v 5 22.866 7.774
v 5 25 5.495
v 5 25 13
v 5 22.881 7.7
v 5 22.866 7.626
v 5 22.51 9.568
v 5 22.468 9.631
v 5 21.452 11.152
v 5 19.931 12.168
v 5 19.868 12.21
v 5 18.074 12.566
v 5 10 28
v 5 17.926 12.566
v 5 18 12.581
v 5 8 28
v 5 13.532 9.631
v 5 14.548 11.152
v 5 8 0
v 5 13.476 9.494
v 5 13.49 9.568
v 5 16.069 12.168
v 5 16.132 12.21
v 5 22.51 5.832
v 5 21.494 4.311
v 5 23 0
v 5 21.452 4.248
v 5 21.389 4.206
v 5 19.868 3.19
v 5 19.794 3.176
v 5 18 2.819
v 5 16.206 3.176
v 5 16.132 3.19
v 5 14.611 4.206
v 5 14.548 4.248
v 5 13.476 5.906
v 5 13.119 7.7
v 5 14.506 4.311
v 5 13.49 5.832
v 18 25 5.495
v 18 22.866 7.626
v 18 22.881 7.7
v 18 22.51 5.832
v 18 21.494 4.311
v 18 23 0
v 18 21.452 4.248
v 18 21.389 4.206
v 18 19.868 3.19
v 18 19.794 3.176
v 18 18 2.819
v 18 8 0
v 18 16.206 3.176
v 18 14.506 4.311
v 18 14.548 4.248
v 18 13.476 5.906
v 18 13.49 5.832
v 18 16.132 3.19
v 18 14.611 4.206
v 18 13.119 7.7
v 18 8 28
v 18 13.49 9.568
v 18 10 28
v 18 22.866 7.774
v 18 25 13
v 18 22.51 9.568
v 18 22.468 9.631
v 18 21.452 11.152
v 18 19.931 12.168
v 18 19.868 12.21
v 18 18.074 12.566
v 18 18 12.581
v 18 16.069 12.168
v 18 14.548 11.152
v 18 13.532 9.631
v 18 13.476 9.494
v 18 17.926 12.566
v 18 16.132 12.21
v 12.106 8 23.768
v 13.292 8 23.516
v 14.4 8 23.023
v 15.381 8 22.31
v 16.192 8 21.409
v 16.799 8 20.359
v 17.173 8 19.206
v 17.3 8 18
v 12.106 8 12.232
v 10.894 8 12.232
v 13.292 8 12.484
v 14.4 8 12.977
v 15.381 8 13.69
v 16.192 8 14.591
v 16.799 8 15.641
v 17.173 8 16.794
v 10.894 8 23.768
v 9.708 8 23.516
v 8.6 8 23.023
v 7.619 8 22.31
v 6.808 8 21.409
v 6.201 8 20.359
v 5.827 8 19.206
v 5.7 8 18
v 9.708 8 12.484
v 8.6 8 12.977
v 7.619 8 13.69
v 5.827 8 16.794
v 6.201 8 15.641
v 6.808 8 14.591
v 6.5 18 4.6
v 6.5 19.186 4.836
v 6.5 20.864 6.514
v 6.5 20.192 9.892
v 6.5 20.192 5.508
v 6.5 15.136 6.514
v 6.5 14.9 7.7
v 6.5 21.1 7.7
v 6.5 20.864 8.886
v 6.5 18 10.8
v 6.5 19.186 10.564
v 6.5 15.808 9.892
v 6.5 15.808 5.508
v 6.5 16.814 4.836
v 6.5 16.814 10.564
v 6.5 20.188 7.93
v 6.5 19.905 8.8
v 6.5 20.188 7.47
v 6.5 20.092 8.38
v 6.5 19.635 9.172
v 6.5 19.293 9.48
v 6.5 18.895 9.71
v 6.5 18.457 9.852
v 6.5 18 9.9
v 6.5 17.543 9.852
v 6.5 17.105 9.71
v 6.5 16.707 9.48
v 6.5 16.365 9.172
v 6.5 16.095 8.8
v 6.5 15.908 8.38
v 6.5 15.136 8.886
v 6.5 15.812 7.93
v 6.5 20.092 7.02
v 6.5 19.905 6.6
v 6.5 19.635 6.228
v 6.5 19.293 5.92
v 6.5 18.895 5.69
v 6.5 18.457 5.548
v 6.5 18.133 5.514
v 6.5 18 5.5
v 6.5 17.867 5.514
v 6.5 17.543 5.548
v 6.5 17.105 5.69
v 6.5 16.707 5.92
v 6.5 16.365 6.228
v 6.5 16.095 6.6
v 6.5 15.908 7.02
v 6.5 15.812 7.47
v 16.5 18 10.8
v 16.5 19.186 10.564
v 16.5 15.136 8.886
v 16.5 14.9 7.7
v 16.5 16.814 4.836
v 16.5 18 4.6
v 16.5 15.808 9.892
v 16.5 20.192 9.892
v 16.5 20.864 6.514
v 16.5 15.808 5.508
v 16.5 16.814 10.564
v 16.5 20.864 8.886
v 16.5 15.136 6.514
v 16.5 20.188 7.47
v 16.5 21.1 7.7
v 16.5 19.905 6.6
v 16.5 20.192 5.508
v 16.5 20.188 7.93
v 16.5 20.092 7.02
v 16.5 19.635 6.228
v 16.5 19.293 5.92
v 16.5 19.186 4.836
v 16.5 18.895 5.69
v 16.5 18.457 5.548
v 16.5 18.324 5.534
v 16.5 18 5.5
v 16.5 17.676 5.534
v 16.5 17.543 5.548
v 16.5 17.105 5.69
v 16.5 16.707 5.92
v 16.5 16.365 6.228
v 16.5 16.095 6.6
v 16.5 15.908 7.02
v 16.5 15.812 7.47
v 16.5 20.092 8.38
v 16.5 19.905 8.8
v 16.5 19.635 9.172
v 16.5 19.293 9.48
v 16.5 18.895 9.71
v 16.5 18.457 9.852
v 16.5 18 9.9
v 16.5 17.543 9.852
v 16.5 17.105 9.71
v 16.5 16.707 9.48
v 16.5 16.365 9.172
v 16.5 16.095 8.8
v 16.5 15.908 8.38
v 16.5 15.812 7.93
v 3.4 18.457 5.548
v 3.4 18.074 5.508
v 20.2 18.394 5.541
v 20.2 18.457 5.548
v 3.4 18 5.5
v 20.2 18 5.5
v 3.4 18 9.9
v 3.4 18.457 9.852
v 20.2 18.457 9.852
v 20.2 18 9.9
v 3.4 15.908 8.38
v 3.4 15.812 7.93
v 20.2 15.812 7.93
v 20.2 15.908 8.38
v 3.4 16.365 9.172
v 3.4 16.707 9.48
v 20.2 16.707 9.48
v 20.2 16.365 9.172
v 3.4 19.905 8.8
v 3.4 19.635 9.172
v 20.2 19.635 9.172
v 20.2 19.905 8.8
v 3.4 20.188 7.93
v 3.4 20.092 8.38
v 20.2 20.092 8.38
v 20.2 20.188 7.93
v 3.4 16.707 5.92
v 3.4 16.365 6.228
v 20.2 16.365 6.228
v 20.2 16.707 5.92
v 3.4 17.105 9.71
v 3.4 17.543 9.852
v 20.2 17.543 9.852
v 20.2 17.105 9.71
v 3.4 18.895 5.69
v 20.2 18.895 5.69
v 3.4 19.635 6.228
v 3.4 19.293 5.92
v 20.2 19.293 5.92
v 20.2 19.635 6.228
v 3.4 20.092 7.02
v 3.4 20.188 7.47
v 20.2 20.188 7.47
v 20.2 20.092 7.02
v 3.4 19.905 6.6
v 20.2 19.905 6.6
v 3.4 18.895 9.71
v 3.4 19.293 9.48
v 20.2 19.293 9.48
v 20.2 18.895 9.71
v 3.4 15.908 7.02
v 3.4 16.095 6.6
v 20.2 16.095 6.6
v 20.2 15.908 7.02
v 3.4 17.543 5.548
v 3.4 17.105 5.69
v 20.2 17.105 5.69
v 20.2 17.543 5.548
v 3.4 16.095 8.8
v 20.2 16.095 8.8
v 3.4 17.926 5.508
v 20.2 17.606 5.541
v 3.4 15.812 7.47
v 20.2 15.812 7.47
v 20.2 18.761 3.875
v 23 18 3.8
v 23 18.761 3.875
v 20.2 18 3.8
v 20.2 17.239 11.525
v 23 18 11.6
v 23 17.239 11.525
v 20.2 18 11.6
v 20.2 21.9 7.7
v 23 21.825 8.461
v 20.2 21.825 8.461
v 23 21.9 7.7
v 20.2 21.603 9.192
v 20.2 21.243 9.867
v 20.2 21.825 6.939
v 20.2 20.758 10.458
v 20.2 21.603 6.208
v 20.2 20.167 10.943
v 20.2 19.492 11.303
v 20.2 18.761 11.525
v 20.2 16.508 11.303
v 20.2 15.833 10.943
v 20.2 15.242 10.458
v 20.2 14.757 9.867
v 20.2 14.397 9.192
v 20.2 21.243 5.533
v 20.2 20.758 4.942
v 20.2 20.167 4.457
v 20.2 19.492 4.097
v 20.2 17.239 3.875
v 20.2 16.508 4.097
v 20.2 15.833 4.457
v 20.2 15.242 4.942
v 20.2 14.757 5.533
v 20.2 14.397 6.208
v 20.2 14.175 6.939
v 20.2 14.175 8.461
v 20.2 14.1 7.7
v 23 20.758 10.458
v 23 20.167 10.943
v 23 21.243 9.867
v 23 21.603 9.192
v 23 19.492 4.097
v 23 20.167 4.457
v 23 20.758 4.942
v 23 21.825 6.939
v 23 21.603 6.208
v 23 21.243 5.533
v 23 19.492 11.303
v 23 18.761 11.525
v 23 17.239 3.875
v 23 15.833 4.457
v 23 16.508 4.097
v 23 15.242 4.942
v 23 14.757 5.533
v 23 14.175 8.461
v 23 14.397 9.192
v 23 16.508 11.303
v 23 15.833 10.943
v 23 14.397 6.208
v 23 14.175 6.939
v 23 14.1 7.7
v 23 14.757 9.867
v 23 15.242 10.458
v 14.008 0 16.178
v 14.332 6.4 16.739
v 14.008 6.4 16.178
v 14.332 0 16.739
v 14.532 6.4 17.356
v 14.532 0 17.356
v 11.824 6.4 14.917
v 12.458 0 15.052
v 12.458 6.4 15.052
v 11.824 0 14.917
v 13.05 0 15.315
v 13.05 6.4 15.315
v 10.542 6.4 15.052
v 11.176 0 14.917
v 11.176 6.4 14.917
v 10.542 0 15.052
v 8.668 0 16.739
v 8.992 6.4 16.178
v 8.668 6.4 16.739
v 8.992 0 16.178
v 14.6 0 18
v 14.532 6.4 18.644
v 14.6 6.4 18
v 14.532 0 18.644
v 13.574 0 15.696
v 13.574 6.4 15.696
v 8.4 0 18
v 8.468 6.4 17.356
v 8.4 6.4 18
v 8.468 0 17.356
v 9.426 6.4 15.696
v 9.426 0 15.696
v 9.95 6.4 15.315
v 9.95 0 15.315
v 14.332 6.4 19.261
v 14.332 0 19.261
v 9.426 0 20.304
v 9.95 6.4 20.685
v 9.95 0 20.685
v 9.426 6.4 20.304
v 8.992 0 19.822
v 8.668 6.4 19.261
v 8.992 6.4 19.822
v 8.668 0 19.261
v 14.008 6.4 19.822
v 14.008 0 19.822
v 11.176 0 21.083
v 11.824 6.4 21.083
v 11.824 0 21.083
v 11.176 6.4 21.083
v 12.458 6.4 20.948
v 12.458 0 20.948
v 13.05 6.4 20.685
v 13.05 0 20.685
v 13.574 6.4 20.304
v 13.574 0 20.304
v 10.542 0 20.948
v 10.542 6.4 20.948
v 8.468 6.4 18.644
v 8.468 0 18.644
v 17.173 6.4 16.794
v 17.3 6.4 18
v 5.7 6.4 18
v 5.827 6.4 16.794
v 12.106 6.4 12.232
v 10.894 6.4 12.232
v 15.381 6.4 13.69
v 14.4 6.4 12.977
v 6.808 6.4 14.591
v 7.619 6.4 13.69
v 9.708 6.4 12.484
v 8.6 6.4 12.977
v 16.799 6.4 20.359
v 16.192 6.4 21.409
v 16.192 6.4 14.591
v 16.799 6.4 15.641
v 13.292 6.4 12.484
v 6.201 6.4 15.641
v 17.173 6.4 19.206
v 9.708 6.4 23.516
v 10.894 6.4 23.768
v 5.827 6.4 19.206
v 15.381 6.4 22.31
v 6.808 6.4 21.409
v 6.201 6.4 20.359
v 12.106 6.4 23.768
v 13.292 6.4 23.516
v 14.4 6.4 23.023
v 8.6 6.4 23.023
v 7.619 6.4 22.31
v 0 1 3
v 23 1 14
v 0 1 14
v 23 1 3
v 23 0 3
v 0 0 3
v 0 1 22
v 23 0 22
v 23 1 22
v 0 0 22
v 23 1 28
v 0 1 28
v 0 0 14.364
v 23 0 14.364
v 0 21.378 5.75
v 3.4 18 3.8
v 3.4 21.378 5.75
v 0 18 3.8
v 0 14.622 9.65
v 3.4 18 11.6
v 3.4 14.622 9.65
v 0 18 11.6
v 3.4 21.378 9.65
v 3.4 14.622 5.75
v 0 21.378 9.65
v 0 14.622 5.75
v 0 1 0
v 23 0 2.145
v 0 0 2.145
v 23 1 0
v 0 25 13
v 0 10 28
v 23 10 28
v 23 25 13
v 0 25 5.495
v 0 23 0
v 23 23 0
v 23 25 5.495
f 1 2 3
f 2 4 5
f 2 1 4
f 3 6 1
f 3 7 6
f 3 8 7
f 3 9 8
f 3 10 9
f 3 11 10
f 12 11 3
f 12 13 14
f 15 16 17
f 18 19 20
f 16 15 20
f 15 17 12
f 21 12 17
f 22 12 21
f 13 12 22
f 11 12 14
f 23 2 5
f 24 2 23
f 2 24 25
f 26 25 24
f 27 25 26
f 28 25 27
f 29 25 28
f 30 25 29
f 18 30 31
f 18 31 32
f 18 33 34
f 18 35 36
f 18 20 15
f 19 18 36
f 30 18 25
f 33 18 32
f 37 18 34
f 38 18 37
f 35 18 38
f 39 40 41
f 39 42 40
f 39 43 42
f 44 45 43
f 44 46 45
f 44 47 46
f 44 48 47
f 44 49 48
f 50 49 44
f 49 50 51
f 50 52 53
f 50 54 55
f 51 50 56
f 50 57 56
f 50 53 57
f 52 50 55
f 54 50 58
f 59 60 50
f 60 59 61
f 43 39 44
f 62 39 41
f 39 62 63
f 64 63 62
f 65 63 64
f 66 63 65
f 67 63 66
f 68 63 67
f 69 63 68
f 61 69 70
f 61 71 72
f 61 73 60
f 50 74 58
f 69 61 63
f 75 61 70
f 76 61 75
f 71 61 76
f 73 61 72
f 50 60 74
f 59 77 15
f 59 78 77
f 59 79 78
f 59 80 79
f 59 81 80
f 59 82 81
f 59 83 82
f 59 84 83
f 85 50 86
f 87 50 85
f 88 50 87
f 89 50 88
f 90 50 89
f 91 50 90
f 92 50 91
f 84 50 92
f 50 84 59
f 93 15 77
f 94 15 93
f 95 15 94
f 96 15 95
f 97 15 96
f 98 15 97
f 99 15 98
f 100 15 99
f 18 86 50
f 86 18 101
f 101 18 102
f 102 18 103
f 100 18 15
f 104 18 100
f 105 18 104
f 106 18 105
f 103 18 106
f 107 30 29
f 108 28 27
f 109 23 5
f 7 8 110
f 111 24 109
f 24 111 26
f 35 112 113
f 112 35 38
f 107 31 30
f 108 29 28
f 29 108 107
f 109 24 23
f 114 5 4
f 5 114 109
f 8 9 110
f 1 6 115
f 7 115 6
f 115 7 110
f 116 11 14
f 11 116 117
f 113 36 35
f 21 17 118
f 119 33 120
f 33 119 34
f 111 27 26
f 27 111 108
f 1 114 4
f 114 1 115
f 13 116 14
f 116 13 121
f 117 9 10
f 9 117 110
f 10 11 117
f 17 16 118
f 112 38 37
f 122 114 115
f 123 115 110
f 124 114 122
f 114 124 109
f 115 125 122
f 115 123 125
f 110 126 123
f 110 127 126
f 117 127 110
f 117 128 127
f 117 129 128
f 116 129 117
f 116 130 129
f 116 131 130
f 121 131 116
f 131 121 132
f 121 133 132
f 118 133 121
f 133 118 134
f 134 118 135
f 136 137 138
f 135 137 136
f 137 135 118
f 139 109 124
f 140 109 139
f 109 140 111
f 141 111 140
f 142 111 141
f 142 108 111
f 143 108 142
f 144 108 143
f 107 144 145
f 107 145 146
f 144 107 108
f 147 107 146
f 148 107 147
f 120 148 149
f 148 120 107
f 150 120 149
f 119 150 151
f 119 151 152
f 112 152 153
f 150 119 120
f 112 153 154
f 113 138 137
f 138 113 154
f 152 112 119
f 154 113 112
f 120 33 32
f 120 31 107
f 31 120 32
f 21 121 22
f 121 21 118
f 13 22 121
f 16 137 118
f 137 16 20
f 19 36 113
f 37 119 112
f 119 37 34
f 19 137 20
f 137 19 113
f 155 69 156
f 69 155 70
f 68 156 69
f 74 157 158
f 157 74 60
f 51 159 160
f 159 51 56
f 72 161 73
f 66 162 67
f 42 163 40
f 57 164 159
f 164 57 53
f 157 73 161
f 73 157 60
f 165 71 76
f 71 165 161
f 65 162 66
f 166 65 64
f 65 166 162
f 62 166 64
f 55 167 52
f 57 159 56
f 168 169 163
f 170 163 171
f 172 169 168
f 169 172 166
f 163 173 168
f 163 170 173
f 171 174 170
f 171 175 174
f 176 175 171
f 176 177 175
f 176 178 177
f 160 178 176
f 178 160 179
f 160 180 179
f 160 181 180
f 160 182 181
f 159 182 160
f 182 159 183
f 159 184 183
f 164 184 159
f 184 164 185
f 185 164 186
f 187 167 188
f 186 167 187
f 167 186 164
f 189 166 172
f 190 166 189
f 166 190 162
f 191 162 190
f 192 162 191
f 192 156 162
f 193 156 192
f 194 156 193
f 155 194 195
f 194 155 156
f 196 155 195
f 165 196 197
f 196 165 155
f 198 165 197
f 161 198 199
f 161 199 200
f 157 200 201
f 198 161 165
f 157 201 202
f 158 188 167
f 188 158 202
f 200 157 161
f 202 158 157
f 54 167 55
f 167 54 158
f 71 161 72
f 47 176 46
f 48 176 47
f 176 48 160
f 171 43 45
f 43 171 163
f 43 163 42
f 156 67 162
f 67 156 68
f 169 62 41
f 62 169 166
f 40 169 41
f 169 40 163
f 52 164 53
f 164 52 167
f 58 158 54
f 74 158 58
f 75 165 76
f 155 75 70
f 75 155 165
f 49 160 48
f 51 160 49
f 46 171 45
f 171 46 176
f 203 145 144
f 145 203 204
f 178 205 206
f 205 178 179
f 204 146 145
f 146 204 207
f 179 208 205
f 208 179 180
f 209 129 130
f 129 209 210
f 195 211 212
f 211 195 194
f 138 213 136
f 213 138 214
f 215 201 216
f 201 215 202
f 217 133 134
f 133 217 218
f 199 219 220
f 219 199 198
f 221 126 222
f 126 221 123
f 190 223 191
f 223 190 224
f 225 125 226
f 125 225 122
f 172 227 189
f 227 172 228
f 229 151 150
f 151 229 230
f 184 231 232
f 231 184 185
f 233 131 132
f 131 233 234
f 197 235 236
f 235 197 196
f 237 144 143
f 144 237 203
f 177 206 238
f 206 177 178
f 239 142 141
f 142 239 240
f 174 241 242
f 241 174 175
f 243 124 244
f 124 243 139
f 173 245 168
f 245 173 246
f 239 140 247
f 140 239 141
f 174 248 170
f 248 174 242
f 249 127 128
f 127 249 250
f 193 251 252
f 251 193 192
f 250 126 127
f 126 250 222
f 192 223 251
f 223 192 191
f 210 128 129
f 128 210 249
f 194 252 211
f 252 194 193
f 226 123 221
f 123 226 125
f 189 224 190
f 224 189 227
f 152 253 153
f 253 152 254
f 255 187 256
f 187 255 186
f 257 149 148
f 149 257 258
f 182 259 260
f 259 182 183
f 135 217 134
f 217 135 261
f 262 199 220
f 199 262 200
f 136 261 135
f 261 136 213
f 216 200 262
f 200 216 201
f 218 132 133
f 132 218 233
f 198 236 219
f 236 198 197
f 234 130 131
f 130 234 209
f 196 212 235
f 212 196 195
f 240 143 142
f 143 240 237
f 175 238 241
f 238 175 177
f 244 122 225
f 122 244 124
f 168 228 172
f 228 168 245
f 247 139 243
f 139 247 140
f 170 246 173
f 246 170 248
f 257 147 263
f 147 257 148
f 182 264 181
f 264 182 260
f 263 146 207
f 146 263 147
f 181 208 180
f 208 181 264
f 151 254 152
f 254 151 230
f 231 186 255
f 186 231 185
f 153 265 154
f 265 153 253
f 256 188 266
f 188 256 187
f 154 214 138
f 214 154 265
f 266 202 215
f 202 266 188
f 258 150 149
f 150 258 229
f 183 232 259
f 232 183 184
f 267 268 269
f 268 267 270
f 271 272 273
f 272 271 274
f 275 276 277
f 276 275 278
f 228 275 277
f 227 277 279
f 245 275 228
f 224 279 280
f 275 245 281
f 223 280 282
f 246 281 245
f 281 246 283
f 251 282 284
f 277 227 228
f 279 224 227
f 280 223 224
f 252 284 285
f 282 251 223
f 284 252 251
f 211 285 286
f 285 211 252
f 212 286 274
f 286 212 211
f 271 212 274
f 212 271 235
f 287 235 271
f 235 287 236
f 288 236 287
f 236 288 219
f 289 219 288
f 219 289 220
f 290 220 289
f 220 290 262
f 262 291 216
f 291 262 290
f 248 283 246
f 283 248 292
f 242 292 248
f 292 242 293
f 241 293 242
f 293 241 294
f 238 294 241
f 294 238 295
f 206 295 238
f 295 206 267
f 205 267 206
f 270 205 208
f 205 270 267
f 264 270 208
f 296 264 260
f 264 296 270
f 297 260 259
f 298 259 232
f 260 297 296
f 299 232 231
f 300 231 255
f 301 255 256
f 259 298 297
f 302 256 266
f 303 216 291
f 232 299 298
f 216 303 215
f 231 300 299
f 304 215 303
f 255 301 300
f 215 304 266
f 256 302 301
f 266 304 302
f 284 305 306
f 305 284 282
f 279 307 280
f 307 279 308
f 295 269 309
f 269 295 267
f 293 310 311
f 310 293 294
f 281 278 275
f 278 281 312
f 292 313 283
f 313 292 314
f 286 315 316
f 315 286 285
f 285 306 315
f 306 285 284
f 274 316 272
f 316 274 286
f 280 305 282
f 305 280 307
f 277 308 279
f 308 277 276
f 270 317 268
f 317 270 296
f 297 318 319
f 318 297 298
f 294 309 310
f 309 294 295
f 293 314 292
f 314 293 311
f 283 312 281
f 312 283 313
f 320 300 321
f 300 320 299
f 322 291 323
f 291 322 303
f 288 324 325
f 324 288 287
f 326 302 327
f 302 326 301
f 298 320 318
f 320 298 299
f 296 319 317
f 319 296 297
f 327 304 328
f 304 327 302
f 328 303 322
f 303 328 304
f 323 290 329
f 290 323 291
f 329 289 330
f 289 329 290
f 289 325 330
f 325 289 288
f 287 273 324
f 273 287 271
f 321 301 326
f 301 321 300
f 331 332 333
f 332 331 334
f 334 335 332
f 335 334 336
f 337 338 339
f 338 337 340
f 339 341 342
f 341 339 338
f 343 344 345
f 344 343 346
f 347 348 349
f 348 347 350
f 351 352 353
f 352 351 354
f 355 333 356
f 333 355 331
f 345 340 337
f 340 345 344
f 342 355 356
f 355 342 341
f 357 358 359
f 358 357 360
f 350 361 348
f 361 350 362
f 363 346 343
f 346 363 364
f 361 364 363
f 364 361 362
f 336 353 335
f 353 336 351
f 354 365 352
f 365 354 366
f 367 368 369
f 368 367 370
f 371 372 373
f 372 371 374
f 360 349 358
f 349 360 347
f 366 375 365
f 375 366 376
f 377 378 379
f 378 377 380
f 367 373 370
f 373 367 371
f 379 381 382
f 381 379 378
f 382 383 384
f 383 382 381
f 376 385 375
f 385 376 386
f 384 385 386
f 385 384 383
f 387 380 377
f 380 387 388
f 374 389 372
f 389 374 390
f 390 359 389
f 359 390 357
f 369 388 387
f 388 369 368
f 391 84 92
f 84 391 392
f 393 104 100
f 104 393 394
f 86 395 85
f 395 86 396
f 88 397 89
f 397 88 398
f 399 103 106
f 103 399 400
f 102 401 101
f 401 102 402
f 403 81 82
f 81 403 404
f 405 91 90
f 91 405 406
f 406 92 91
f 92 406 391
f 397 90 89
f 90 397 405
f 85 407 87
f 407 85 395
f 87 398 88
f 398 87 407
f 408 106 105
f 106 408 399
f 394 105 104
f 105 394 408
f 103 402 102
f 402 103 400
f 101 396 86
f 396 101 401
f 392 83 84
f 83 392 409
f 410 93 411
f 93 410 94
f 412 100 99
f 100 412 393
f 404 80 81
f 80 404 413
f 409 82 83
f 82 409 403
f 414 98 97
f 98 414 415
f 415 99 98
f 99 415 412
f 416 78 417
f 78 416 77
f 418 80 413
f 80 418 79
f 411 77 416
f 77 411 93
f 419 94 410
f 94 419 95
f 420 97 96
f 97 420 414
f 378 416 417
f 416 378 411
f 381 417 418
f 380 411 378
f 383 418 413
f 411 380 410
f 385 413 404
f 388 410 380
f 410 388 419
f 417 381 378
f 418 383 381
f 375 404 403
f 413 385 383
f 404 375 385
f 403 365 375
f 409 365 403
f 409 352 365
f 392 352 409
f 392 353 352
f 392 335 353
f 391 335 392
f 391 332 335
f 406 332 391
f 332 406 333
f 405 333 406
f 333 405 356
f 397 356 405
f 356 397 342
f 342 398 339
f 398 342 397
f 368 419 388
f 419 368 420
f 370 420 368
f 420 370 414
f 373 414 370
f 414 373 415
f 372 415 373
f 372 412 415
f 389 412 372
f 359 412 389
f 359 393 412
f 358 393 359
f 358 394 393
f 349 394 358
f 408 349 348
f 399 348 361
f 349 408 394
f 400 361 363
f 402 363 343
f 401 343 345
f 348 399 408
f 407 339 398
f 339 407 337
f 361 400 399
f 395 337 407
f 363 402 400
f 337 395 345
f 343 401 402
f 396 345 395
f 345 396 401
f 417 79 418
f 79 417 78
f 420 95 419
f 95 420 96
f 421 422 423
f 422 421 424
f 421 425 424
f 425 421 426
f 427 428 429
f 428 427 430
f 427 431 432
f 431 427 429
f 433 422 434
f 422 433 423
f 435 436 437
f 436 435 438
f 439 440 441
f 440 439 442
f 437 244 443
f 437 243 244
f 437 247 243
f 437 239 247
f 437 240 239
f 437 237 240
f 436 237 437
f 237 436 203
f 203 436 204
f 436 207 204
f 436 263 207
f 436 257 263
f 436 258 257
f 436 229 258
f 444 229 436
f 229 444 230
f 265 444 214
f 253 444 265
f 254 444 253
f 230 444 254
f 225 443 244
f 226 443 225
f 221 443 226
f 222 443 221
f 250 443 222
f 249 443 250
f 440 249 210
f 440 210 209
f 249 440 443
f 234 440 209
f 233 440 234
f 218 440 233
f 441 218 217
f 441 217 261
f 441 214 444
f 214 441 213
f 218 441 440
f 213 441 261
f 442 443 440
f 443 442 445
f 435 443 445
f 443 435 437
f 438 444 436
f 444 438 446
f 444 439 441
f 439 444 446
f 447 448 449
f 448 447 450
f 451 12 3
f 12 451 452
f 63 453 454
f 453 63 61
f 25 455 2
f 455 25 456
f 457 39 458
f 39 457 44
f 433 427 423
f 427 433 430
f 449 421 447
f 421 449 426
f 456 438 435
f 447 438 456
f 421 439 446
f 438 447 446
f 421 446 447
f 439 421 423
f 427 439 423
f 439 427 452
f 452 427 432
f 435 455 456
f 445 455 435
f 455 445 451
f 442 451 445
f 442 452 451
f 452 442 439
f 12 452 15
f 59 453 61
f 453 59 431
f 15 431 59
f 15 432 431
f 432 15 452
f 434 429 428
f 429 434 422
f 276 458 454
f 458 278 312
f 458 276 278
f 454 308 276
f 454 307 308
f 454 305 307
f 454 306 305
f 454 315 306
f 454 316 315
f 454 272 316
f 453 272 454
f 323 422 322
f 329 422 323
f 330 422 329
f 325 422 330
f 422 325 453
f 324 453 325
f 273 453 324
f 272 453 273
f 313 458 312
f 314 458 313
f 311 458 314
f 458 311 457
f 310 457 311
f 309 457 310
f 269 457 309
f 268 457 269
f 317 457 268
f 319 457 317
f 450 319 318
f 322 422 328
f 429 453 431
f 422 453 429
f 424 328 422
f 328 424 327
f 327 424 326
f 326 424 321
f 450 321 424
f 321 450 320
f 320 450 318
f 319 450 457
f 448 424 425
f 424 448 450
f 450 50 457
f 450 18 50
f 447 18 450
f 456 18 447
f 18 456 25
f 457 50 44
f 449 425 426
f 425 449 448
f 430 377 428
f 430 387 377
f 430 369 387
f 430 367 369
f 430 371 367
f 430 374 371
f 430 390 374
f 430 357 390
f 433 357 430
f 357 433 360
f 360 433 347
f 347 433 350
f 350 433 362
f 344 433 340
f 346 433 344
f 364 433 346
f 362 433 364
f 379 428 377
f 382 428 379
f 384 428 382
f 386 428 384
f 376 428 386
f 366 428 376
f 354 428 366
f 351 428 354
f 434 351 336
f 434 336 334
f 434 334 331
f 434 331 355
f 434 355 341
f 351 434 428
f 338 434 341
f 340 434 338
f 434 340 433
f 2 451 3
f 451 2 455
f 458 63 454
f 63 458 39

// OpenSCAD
// file: ../configuration.scad
/*
	Konfiguracni soubor 3D tiskarny RebeliX X2
	
	Sledujte nas na:		  
			www.RepRap4U.cz
			www.facebook.com/RebeliX.cz
			https://twitter.com/reprap4u
			https://plus.google.com/+Reprap4uCz-3Dtiskarna-RebeliX
*/

/*================ Slic3r nastaveni ==========================*/

// Vyska vrstvy pro tisknuti dilu [mm]
layer_height = 0.3;

// Sirka vytlacovaneho materialu [mm]
extrusion_width = 0.66; //Slic3r->Print Settings->Advanced->Default extrusion width

/*==================== M6 sroub ==============================*/

// Rezerva prumeru hlavy sroubu [mm]
space = 1;

// Prumer hlavy M6 sroubu (pricte se rezerva) [mm]
M6_head_diameter = 10.6+space;
//M6_head_diameter = 12+space;

// Vyska hlavy M6 sroubu (dulezite pro zapusteni hlavy sroubu do plastu) [mm]
M6_head_height = 3.6;
//M6_head_height = 4.5;

// Delka sroubu M6 [mm]
// M6x12
M6_lenght = 12;

/*=================== Nastaveni dilu =========================*/

// Posun Z zakladny
z_base_offset = 11;

// Tloustka rohovych spojek
// 5 mm => sroub M6x14 s podlozkou
// 3 mm => sroub M6x12 s podlozkou
coupler_thickness = 5;

// Prumer 8mm tyce
rod_8mm_d = 8.2;

// Posun drzacku mezi x-motor a x-end
x_holder_position = 6.5;

/*======================== Motory ============================*/

// Delka motoru (ovlivni dily a delky tyci pro osy Z a Y)
//SX17-1003LQFE (doporuceno hlavne na osu Z)
motor_length = 29.5;
//SX17-1003 (doporuceno hlavne na osu Z), SX17-0503LQEF
//motor_length = 34;
//SX17-1005
//motor_length = 40;
//SX17-0905 - zde je jiz problem s velkou vyskou motoru na ose Z - musi se upravit endstop-holder
//motor_length = 48;

/*================ Remeny a remenicky ========================*/

// GT2 
belt_tooth_distance = 2;
belt_tooth_ratio = 0.5;

// T2.5
//belt_tooth_distance = 2.5;
//belt_tooth_ratio = 0.68;
// main file
// RebeliX
//
// y-idler
// GNU GPL v3
// Martin Neruda <neruda@reprap4u.cz>
// http://www.reprap4u.cz

include <../configuration.scad>

// Lozisko 624
bearing_width = 5;

wall = 5;
height = 28;
depth = 25;
width = 2*bearing_width+2*wall+3;
base_thickness = 8;

module y_idler_base(){
	cube([width,depth,height]);
}

module y_idler_cuts(){
	difference(){
	  // Vyrez pro lozisko
	  translate([wall,base_thickness,-0.1]) cube([width-2*wall,depth,height+1]);
	  // Mezera pro loziska
	  translate([wall-0.1,depth-7,7.7]) rotate([0,90,0]) cylinder(r1=5,r2=3.1,h=1.6);
	  translate([width-wall+0.1,depth-7,7.7]) rotate([0,-90,0]) cylinder(r1=5,r2=3.1,h=1.6);
	}
	// Otvor pro sroub na lozisko
	translate([width/2,depth-7,7.7]) rotate([0,90,0]) cylinder(r = 2.2, h = width+1, $fn = 30,center=true);
	translate([width,depth-7,7.7]) rotate([0,90,0])cylinder(r=3.9,h=wall+0.6,$fn=32,center=true);
	
	// Otvor na prisroubovani do kombistojky
	translate([width/2,-0.1,3+15]) rotate([-90,0,0]) cylinder(r = 3.1, h = depth, $fn = 30);
	// Otvor pro zahloubeni M6 sroubu
	translate([width/2,base_thickness-M6_head_height+2,3+15]) rotate([-90,0,0]) cylinder(r = M6_head_diameter/2, h = depth, $fn = 30);
	// Vyrez pro hlinikovy profil
	translate([-0.1,-0.1,3]) cube([width+1,1.1,15-4]);
	translate([-0.1,-0.1,3+15+4]) cube([width+1,1.1,15-4]);
	translate([-0.1,1,3+15-4]) rotate([160,0,0]) cube([30,3,8]); 
	// Otvor na matku
	translate([-0.1,depth-7,7.7]) rotate([0,90,0]) cylinder(h = 3.5, r=3.9, $fn=6);	
	// Setreni plastem
	translate([-0.1,1,0]) rotate([115,0,0]) cube([width+1,6,6]);
	translate([-0.1,depth,13]) rotate([45,0,0]) cube([width+1,depth+2,height]);
	translate([-0.1,depth-2,0]) rotate([-20,0,0]) cube([width+1,10,10]);
	
	// Lozisko
	%translate([wall+1.5,depth-7,7.7]) rotate([0,90,0]) cylinder(r = 6.5, h = 2*bearing_width, $fn = 30);
}

difference(){
	y_idler_base();
	y_idler_cuts();
}	
